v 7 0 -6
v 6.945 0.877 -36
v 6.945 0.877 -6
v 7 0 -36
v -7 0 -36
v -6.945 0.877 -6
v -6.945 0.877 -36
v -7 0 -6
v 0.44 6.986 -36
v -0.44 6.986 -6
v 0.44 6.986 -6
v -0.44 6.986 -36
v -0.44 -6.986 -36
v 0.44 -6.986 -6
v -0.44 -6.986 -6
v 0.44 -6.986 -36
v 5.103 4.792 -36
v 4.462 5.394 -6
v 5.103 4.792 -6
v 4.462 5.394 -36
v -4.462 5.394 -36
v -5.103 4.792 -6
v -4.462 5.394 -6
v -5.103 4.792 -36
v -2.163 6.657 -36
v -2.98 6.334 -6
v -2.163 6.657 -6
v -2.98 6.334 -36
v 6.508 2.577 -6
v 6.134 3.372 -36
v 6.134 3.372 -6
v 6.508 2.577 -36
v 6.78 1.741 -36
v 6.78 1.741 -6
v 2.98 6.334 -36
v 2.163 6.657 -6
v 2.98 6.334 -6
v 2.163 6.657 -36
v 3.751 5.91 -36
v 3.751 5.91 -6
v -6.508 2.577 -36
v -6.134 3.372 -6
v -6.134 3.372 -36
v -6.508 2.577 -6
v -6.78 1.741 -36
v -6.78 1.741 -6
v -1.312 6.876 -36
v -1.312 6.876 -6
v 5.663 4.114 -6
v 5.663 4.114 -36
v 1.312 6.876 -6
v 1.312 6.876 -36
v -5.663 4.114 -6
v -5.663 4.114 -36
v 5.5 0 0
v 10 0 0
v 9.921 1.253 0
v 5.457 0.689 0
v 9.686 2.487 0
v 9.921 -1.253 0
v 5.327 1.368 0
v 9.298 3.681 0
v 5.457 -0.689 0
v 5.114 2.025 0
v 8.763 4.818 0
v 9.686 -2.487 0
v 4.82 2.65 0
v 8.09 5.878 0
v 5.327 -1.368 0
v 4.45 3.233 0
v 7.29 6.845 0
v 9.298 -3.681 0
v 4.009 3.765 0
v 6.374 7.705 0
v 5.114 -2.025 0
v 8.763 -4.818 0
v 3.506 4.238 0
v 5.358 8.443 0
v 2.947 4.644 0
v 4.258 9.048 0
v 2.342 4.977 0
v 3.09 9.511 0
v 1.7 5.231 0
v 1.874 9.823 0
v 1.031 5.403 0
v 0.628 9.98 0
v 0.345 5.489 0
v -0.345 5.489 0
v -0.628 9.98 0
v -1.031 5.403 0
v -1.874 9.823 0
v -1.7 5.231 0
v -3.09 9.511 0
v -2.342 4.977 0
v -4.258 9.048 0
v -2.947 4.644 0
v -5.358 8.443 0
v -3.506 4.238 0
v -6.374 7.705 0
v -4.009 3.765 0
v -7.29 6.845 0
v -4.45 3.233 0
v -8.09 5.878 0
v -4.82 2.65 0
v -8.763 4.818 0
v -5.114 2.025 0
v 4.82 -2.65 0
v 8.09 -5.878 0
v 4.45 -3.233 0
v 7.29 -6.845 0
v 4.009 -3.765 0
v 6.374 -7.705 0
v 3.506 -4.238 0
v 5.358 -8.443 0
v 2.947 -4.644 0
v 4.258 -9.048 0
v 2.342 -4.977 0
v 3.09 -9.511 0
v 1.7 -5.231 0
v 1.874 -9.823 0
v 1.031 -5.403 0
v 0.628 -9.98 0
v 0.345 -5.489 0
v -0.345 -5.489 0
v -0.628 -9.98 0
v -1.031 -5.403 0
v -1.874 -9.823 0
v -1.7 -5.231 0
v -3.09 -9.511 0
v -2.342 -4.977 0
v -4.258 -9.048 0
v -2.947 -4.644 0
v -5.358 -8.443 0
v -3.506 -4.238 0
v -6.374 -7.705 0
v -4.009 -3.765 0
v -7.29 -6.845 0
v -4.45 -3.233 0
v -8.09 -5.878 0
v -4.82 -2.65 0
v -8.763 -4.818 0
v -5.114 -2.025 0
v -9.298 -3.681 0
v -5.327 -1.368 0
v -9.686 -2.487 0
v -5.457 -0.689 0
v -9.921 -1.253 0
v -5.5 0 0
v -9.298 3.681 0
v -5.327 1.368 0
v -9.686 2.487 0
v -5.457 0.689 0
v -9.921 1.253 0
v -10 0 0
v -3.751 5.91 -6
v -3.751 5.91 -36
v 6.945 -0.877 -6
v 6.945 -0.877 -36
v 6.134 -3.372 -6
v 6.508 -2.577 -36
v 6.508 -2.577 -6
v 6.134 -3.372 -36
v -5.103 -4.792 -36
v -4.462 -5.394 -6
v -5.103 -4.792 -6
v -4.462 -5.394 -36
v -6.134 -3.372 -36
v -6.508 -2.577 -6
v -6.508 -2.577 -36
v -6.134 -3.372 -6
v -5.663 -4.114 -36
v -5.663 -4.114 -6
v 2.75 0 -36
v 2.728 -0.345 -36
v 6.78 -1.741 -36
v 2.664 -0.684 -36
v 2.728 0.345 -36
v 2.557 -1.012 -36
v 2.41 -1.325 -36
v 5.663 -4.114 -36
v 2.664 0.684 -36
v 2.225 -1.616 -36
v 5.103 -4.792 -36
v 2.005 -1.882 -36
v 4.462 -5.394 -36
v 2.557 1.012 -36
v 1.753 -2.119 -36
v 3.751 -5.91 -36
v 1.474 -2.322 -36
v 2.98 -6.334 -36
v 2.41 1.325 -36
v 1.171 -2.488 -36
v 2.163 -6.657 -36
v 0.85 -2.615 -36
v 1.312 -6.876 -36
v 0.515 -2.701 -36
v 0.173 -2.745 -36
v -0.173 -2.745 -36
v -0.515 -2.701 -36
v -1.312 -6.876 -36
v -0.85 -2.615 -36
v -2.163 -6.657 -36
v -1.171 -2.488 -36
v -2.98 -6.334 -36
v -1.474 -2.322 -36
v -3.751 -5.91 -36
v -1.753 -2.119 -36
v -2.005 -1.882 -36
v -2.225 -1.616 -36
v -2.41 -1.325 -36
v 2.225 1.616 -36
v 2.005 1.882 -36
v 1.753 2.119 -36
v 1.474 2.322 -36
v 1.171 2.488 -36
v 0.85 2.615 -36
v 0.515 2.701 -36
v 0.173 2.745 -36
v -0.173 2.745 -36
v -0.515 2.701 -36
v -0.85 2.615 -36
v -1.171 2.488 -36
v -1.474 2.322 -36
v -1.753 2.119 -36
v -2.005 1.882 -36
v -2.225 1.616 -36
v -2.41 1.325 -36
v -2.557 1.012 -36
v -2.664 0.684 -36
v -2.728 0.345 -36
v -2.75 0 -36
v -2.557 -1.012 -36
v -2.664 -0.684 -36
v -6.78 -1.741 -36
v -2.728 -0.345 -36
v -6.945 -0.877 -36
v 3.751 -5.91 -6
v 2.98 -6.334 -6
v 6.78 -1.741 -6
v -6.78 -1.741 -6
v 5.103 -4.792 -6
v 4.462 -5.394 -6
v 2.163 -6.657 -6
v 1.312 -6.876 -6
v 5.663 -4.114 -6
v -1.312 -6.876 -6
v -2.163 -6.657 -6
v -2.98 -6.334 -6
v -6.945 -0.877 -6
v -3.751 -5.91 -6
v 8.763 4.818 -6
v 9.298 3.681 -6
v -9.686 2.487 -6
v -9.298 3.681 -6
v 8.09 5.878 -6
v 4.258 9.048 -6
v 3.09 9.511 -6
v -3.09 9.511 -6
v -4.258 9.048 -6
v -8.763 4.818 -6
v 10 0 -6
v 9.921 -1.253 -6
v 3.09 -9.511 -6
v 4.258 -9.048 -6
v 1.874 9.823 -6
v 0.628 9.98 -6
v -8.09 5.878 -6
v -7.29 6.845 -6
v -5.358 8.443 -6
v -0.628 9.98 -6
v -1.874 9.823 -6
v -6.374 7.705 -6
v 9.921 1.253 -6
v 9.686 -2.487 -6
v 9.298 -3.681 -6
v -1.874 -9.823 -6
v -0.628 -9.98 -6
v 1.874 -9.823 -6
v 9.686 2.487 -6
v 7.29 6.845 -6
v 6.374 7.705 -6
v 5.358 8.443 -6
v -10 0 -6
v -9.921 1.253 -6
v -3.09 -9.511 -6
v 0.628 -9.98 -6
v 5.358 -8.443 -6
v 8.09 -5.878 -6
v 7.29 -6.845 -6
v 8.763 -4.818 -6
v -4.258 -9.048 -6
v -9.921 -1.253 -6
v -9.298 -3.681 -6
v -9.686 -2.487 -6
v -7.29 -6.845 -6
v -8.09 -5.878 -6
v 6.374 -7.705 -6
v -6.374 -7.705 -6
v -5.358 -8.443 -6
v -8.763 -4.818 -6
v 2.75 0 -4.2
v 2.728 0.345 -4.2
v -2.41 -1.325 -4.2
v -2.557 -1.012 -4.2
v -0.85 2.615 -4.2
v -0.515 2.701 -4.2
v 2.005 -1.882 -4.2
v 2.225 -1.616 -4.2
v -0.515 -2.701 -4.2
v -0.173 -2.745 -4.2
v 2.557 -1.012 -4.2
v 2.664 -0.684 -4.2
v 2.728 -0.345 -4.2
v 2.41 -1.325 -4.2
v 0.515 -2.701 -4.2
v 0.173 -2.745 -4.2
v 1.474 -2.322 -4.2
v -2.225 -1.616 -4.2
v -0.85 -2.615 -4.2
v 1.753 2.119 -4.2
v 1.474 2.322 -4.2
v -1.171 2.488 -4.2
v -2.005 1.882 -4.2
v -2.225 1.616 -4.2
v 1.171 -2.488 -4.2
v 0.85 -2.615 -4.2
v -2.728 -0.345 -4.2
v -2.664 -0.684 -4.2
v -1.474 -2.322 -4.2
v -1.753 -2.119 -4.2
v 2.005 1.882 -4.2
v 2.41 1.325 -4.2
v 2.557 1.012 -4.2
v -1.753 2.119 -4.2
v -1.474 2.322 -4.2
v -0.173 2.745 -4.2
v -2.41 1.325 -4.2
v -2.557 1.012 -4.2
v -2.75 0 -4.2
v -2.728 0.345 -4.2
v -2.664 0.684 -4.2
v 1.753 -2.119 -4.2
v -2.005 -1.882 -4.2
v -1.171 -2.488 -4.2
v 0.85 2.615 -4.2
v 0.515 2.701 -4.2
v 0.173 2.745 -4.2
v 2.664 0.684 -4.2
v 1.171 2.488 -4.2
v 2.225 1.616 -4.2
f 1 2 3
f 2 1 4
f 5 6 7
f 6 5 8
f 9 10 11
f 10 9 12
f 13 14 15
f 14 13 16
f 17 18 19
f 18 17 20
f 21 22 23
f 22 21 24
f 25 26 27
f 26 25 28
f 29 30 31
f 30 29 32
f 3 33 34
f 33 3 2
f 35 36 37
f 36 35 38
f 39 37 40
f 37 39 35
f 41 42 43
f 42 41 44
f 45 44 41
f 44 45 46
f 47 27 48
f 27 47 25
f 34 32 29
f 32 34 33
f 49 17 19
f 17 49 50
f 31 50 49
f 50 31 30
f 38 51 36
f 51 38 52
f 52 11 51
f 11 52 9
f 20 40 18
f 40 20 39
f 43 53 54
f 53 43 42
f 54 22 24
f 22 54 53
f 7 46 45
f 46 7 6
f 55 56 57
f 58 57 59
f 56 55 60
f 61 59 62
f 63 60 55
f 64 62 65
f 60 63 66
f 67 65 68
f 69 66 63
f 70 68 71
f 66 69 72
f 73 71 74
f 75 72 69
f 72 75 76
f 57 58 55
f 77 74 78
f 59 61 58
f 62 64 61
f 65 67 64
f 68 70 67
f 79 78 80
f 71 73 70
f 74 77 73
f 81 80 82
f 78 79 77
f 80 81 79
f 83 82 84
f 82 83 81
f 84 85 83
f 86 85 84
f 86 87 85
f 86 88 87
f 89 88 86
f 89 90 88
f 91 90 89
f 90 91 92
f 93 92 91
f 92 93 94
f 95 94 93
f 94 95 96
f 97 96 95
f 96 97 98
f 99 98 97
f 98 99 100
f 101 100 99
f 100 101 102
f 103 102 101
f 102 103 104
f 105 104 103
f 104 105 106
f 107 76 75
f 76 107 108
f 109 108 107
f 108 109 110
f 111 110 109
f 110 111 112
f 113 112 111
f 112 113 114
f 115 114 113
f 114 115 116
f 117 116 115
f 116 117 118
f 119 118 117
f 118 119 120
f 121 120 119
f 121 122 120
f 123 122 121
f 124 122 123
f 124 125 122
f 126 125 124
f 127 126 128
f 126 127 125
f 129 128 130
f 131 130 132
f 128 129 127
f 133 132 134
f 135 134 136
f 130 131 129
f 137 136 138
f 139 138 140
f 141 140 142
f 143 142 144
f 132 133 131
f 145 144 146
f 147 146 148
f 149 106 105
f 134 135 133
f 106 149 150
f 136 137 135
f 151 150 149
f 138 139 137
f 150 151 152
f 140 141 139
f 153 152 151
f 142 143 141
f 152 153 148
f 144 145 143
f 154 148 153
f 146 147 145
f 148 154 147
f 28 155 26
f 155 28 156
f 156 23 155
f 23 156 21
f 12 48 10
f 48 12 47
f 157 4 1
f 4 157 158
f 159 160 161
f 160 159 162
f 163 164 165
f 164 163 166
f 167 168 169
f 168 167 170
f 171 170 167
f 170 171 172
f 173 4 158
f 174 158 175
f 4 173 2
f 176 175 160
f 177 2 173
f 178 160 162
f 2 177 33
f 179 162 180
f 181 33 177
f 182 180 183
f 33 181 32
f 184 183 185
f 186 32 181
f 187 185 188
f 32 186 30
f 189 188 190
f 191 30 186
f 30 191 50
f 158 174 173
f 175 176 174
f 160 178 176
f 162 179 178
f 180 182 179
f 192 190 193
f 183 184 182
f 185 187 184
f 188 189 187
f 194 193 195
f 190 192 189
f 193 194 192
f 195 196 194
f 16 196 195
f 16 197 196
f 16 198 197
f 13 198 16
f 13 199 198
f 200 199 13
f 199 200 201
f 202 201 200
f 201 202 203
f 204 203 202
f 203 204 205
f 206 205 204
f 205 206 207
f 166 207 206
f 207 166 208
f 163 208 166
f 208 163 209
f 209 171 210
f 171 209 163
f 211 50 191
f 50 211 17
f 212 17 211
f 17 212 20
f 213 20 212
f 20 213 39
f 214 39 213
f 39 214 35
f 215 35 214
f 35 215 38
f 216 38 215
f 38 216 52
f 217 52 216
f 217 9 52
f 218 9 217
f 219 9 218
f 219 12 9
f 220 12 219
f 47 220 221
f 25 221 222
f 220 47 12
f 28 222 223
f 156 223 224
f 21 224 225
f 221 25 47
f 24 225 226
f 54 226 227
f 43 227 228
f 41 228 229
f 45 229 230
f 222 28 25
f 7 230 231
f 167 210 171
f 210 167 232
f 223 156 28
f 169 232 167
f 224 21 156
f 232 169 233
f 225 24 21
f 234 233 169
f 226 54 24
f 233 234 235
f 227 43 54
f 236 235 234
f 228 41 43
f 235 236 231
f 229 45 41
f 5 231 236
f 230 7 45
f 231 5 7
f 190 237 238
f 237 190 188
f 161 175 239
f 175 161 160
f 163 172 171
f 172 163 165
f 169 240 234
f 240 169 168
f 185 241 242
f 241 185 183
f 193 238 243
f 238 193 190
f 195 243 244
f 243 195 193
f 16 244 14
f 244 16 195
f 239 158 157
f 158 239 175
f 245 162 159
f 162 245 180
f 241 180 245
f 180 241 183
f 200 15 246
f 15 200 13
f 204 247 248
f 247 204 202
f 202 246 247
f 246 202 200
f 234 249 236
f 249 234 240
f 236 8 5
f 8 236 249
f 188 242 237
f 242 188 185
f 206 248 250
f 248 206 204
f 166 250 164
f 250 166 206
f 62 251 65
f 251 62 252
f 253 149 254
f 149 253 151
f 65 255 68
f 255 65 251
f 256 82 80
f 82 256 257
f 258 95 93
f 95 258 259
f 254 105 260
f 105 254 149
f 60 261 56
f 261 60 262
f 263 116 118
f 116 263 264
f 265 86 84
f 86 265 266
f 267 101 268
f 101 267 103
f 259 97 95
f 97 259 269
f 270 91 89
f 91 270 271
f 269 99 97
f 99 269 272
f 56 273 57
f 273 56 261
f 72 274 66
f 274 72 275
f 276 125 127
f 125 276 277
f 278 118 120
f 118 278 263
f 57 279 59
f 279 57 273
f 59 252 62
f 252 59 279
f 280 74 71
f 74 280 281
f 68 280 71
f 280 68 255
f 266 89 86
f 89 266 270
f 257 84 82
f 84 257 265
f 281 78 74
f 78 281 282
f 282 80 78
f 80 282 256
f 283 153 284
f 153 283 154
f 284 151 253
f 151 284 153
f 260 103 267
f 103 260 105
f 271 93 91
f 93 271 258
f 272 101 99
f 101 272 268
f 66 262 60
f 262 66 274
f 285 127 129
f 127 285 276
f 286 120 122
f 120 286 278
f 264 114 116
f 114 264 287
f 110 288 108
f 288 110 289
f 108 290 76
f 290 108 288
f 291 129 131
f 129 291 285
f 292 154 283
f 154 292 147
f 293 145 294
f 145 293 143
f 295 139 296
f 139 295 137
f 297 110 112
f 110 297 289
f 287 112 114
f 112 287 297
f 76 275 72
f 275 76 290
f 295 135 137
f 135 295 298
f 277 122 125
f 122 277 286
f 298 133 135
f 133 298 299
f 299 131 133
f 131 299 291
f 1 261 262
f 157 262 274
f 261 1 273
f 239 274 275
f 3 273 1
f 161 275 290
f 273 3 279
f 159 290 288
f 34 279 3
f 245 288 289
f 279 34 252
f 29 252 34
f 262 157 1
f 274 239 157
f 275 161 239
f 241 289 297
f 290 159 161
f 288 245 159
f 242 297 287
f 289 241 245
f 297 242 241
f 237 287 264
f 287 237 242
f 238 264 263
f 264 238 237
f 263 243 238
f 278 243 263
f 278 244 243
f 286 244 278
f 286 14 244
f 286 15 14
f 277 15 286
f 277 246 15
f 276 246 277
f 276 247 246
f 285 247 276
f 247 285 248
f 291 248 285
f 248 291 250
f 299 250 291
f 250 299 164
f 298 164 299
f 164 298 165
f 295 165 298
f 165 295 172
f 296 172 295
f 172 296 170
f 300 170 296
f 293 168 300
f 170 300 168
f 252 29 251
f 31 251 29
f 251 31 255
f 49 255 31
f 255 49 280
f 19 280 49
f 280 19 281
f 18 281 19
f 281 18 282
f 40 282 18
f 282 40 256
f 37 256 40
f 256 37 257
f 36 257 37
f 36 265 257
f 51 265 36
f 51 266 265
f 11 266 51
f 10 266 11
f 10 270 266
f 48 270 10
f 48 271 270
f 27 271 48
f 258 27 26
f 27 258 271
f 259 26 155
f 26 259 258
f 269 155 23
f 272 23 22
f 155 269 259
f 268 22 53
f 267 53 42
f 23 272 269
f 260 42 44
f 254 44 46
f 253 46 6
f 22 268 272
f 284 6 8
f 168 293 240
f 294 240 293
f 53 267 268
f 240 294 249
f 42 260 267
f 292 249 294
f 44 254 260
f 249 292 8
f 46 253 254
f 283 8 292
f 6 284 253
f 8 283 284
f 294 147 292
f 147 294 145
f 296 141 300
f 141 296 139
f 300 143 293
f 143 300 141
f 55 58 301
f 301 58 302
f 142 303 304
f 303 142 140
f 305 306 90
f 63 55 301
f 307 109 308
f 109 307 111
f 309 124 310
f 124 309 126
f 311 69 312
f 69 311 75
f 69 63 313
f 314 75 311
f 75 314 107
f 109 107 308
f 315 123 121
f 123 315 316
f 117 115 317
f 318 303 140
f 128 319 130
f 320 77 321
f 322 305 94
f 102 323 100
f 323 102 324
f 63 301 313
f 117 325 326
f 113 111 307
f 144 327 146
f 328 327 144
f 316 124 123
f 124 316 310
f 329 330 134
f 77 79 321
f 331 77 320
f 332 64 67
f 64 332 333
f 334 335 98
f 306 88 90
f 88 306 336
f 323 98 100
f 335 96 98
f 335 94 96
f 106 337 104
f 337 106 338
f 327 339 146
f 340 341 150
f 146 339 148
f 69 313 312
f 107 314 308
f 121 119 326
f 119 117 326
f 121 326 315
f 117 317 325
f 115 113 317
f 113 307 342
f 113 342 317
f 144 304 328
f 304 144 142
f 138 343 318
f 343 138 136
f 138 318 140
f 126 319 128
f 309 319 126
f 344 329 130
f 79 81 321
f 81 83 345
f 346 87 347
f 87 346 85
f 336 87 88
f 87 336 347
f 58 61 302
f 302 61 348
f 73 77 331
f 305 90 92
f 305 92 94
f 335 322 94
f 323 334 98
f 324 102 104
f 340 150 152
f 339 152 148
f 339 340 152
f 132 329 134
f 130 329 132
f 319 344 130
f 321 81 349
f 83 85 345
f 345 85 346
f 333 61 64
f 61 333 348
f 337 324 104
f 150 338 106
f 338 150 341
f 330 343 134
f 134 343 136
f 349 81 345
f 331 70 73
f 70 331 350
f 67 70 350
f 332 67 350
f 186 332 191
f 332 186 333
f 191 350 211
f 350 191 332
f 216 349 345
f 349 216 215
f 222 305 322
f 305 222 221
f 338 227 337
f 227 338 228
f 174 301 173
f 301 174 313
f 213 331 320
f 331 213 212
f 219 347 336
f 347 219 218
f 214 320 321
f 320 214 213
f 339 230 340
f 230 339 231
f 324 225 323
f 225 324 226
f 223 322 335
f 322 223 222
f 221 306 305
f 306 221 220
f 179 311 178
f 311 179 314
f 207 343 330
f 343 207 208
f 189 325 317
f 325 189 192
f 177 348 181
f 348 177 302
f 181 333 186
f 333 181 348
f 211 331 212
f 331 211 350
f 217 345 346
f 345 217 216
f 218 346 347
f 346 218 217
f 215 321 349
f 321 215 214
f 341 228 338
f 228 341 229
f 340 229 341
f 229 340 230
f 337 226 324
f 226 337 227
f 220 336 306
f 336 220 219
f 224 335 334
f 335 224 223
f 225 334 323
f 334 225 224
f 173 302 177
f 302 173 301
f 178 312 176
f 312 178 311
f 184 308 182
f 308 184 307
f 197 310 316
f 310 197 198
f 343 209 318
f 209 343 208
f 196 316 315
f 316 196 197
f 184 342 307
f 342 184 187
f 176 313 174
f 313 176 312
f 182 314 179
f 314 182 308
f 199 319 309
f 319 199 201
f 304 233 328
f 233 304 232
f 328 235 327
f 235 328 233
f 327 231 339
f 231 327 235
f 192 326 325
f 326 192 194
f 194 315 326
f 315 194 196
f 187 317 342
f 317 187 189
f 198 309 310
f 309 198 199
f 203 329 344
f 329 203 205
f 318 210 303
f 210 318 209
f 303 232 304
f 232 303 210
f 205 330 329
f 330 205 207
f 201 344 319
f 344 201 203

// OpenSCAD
$fn = 50;


difference() {
	union() {
		translate(v = [0, 0, -36.0000000000]) {
			cylinder(h = 36, r = 7.0000000000);
		}
		translate(v = [0, 0, -6.0000000000]) {
			cylinder(h = 6, r = 10.0000000000);
		}
	}
	union() {
		translate(v = [0, 0, 0]) {
			rotate(a = [0, 0, 0]) {
				difference() {
					union() {
						#translate(v = [0, 0, -36.0000000000]) {
							cylinder(h = 36, r = 2.2500000000);
						}
						#translate(v = [0, 0, -4.2000000000]) {
							cylinder(h = 4.2000000000, r1 = 2.7500000000, r2 = 5.5000000000);
						}
						#translate(v = [0, 0, -36.0000000000]) {
							cylinder(h = 36, r = 2.7500000000);
						}
						#translate(v = [0, 0, -36.0000000000]) {
							cylinder(h = 36, r = 2.2500000000);
						}
					}
					union();
				}
			}
		}
	}
}
